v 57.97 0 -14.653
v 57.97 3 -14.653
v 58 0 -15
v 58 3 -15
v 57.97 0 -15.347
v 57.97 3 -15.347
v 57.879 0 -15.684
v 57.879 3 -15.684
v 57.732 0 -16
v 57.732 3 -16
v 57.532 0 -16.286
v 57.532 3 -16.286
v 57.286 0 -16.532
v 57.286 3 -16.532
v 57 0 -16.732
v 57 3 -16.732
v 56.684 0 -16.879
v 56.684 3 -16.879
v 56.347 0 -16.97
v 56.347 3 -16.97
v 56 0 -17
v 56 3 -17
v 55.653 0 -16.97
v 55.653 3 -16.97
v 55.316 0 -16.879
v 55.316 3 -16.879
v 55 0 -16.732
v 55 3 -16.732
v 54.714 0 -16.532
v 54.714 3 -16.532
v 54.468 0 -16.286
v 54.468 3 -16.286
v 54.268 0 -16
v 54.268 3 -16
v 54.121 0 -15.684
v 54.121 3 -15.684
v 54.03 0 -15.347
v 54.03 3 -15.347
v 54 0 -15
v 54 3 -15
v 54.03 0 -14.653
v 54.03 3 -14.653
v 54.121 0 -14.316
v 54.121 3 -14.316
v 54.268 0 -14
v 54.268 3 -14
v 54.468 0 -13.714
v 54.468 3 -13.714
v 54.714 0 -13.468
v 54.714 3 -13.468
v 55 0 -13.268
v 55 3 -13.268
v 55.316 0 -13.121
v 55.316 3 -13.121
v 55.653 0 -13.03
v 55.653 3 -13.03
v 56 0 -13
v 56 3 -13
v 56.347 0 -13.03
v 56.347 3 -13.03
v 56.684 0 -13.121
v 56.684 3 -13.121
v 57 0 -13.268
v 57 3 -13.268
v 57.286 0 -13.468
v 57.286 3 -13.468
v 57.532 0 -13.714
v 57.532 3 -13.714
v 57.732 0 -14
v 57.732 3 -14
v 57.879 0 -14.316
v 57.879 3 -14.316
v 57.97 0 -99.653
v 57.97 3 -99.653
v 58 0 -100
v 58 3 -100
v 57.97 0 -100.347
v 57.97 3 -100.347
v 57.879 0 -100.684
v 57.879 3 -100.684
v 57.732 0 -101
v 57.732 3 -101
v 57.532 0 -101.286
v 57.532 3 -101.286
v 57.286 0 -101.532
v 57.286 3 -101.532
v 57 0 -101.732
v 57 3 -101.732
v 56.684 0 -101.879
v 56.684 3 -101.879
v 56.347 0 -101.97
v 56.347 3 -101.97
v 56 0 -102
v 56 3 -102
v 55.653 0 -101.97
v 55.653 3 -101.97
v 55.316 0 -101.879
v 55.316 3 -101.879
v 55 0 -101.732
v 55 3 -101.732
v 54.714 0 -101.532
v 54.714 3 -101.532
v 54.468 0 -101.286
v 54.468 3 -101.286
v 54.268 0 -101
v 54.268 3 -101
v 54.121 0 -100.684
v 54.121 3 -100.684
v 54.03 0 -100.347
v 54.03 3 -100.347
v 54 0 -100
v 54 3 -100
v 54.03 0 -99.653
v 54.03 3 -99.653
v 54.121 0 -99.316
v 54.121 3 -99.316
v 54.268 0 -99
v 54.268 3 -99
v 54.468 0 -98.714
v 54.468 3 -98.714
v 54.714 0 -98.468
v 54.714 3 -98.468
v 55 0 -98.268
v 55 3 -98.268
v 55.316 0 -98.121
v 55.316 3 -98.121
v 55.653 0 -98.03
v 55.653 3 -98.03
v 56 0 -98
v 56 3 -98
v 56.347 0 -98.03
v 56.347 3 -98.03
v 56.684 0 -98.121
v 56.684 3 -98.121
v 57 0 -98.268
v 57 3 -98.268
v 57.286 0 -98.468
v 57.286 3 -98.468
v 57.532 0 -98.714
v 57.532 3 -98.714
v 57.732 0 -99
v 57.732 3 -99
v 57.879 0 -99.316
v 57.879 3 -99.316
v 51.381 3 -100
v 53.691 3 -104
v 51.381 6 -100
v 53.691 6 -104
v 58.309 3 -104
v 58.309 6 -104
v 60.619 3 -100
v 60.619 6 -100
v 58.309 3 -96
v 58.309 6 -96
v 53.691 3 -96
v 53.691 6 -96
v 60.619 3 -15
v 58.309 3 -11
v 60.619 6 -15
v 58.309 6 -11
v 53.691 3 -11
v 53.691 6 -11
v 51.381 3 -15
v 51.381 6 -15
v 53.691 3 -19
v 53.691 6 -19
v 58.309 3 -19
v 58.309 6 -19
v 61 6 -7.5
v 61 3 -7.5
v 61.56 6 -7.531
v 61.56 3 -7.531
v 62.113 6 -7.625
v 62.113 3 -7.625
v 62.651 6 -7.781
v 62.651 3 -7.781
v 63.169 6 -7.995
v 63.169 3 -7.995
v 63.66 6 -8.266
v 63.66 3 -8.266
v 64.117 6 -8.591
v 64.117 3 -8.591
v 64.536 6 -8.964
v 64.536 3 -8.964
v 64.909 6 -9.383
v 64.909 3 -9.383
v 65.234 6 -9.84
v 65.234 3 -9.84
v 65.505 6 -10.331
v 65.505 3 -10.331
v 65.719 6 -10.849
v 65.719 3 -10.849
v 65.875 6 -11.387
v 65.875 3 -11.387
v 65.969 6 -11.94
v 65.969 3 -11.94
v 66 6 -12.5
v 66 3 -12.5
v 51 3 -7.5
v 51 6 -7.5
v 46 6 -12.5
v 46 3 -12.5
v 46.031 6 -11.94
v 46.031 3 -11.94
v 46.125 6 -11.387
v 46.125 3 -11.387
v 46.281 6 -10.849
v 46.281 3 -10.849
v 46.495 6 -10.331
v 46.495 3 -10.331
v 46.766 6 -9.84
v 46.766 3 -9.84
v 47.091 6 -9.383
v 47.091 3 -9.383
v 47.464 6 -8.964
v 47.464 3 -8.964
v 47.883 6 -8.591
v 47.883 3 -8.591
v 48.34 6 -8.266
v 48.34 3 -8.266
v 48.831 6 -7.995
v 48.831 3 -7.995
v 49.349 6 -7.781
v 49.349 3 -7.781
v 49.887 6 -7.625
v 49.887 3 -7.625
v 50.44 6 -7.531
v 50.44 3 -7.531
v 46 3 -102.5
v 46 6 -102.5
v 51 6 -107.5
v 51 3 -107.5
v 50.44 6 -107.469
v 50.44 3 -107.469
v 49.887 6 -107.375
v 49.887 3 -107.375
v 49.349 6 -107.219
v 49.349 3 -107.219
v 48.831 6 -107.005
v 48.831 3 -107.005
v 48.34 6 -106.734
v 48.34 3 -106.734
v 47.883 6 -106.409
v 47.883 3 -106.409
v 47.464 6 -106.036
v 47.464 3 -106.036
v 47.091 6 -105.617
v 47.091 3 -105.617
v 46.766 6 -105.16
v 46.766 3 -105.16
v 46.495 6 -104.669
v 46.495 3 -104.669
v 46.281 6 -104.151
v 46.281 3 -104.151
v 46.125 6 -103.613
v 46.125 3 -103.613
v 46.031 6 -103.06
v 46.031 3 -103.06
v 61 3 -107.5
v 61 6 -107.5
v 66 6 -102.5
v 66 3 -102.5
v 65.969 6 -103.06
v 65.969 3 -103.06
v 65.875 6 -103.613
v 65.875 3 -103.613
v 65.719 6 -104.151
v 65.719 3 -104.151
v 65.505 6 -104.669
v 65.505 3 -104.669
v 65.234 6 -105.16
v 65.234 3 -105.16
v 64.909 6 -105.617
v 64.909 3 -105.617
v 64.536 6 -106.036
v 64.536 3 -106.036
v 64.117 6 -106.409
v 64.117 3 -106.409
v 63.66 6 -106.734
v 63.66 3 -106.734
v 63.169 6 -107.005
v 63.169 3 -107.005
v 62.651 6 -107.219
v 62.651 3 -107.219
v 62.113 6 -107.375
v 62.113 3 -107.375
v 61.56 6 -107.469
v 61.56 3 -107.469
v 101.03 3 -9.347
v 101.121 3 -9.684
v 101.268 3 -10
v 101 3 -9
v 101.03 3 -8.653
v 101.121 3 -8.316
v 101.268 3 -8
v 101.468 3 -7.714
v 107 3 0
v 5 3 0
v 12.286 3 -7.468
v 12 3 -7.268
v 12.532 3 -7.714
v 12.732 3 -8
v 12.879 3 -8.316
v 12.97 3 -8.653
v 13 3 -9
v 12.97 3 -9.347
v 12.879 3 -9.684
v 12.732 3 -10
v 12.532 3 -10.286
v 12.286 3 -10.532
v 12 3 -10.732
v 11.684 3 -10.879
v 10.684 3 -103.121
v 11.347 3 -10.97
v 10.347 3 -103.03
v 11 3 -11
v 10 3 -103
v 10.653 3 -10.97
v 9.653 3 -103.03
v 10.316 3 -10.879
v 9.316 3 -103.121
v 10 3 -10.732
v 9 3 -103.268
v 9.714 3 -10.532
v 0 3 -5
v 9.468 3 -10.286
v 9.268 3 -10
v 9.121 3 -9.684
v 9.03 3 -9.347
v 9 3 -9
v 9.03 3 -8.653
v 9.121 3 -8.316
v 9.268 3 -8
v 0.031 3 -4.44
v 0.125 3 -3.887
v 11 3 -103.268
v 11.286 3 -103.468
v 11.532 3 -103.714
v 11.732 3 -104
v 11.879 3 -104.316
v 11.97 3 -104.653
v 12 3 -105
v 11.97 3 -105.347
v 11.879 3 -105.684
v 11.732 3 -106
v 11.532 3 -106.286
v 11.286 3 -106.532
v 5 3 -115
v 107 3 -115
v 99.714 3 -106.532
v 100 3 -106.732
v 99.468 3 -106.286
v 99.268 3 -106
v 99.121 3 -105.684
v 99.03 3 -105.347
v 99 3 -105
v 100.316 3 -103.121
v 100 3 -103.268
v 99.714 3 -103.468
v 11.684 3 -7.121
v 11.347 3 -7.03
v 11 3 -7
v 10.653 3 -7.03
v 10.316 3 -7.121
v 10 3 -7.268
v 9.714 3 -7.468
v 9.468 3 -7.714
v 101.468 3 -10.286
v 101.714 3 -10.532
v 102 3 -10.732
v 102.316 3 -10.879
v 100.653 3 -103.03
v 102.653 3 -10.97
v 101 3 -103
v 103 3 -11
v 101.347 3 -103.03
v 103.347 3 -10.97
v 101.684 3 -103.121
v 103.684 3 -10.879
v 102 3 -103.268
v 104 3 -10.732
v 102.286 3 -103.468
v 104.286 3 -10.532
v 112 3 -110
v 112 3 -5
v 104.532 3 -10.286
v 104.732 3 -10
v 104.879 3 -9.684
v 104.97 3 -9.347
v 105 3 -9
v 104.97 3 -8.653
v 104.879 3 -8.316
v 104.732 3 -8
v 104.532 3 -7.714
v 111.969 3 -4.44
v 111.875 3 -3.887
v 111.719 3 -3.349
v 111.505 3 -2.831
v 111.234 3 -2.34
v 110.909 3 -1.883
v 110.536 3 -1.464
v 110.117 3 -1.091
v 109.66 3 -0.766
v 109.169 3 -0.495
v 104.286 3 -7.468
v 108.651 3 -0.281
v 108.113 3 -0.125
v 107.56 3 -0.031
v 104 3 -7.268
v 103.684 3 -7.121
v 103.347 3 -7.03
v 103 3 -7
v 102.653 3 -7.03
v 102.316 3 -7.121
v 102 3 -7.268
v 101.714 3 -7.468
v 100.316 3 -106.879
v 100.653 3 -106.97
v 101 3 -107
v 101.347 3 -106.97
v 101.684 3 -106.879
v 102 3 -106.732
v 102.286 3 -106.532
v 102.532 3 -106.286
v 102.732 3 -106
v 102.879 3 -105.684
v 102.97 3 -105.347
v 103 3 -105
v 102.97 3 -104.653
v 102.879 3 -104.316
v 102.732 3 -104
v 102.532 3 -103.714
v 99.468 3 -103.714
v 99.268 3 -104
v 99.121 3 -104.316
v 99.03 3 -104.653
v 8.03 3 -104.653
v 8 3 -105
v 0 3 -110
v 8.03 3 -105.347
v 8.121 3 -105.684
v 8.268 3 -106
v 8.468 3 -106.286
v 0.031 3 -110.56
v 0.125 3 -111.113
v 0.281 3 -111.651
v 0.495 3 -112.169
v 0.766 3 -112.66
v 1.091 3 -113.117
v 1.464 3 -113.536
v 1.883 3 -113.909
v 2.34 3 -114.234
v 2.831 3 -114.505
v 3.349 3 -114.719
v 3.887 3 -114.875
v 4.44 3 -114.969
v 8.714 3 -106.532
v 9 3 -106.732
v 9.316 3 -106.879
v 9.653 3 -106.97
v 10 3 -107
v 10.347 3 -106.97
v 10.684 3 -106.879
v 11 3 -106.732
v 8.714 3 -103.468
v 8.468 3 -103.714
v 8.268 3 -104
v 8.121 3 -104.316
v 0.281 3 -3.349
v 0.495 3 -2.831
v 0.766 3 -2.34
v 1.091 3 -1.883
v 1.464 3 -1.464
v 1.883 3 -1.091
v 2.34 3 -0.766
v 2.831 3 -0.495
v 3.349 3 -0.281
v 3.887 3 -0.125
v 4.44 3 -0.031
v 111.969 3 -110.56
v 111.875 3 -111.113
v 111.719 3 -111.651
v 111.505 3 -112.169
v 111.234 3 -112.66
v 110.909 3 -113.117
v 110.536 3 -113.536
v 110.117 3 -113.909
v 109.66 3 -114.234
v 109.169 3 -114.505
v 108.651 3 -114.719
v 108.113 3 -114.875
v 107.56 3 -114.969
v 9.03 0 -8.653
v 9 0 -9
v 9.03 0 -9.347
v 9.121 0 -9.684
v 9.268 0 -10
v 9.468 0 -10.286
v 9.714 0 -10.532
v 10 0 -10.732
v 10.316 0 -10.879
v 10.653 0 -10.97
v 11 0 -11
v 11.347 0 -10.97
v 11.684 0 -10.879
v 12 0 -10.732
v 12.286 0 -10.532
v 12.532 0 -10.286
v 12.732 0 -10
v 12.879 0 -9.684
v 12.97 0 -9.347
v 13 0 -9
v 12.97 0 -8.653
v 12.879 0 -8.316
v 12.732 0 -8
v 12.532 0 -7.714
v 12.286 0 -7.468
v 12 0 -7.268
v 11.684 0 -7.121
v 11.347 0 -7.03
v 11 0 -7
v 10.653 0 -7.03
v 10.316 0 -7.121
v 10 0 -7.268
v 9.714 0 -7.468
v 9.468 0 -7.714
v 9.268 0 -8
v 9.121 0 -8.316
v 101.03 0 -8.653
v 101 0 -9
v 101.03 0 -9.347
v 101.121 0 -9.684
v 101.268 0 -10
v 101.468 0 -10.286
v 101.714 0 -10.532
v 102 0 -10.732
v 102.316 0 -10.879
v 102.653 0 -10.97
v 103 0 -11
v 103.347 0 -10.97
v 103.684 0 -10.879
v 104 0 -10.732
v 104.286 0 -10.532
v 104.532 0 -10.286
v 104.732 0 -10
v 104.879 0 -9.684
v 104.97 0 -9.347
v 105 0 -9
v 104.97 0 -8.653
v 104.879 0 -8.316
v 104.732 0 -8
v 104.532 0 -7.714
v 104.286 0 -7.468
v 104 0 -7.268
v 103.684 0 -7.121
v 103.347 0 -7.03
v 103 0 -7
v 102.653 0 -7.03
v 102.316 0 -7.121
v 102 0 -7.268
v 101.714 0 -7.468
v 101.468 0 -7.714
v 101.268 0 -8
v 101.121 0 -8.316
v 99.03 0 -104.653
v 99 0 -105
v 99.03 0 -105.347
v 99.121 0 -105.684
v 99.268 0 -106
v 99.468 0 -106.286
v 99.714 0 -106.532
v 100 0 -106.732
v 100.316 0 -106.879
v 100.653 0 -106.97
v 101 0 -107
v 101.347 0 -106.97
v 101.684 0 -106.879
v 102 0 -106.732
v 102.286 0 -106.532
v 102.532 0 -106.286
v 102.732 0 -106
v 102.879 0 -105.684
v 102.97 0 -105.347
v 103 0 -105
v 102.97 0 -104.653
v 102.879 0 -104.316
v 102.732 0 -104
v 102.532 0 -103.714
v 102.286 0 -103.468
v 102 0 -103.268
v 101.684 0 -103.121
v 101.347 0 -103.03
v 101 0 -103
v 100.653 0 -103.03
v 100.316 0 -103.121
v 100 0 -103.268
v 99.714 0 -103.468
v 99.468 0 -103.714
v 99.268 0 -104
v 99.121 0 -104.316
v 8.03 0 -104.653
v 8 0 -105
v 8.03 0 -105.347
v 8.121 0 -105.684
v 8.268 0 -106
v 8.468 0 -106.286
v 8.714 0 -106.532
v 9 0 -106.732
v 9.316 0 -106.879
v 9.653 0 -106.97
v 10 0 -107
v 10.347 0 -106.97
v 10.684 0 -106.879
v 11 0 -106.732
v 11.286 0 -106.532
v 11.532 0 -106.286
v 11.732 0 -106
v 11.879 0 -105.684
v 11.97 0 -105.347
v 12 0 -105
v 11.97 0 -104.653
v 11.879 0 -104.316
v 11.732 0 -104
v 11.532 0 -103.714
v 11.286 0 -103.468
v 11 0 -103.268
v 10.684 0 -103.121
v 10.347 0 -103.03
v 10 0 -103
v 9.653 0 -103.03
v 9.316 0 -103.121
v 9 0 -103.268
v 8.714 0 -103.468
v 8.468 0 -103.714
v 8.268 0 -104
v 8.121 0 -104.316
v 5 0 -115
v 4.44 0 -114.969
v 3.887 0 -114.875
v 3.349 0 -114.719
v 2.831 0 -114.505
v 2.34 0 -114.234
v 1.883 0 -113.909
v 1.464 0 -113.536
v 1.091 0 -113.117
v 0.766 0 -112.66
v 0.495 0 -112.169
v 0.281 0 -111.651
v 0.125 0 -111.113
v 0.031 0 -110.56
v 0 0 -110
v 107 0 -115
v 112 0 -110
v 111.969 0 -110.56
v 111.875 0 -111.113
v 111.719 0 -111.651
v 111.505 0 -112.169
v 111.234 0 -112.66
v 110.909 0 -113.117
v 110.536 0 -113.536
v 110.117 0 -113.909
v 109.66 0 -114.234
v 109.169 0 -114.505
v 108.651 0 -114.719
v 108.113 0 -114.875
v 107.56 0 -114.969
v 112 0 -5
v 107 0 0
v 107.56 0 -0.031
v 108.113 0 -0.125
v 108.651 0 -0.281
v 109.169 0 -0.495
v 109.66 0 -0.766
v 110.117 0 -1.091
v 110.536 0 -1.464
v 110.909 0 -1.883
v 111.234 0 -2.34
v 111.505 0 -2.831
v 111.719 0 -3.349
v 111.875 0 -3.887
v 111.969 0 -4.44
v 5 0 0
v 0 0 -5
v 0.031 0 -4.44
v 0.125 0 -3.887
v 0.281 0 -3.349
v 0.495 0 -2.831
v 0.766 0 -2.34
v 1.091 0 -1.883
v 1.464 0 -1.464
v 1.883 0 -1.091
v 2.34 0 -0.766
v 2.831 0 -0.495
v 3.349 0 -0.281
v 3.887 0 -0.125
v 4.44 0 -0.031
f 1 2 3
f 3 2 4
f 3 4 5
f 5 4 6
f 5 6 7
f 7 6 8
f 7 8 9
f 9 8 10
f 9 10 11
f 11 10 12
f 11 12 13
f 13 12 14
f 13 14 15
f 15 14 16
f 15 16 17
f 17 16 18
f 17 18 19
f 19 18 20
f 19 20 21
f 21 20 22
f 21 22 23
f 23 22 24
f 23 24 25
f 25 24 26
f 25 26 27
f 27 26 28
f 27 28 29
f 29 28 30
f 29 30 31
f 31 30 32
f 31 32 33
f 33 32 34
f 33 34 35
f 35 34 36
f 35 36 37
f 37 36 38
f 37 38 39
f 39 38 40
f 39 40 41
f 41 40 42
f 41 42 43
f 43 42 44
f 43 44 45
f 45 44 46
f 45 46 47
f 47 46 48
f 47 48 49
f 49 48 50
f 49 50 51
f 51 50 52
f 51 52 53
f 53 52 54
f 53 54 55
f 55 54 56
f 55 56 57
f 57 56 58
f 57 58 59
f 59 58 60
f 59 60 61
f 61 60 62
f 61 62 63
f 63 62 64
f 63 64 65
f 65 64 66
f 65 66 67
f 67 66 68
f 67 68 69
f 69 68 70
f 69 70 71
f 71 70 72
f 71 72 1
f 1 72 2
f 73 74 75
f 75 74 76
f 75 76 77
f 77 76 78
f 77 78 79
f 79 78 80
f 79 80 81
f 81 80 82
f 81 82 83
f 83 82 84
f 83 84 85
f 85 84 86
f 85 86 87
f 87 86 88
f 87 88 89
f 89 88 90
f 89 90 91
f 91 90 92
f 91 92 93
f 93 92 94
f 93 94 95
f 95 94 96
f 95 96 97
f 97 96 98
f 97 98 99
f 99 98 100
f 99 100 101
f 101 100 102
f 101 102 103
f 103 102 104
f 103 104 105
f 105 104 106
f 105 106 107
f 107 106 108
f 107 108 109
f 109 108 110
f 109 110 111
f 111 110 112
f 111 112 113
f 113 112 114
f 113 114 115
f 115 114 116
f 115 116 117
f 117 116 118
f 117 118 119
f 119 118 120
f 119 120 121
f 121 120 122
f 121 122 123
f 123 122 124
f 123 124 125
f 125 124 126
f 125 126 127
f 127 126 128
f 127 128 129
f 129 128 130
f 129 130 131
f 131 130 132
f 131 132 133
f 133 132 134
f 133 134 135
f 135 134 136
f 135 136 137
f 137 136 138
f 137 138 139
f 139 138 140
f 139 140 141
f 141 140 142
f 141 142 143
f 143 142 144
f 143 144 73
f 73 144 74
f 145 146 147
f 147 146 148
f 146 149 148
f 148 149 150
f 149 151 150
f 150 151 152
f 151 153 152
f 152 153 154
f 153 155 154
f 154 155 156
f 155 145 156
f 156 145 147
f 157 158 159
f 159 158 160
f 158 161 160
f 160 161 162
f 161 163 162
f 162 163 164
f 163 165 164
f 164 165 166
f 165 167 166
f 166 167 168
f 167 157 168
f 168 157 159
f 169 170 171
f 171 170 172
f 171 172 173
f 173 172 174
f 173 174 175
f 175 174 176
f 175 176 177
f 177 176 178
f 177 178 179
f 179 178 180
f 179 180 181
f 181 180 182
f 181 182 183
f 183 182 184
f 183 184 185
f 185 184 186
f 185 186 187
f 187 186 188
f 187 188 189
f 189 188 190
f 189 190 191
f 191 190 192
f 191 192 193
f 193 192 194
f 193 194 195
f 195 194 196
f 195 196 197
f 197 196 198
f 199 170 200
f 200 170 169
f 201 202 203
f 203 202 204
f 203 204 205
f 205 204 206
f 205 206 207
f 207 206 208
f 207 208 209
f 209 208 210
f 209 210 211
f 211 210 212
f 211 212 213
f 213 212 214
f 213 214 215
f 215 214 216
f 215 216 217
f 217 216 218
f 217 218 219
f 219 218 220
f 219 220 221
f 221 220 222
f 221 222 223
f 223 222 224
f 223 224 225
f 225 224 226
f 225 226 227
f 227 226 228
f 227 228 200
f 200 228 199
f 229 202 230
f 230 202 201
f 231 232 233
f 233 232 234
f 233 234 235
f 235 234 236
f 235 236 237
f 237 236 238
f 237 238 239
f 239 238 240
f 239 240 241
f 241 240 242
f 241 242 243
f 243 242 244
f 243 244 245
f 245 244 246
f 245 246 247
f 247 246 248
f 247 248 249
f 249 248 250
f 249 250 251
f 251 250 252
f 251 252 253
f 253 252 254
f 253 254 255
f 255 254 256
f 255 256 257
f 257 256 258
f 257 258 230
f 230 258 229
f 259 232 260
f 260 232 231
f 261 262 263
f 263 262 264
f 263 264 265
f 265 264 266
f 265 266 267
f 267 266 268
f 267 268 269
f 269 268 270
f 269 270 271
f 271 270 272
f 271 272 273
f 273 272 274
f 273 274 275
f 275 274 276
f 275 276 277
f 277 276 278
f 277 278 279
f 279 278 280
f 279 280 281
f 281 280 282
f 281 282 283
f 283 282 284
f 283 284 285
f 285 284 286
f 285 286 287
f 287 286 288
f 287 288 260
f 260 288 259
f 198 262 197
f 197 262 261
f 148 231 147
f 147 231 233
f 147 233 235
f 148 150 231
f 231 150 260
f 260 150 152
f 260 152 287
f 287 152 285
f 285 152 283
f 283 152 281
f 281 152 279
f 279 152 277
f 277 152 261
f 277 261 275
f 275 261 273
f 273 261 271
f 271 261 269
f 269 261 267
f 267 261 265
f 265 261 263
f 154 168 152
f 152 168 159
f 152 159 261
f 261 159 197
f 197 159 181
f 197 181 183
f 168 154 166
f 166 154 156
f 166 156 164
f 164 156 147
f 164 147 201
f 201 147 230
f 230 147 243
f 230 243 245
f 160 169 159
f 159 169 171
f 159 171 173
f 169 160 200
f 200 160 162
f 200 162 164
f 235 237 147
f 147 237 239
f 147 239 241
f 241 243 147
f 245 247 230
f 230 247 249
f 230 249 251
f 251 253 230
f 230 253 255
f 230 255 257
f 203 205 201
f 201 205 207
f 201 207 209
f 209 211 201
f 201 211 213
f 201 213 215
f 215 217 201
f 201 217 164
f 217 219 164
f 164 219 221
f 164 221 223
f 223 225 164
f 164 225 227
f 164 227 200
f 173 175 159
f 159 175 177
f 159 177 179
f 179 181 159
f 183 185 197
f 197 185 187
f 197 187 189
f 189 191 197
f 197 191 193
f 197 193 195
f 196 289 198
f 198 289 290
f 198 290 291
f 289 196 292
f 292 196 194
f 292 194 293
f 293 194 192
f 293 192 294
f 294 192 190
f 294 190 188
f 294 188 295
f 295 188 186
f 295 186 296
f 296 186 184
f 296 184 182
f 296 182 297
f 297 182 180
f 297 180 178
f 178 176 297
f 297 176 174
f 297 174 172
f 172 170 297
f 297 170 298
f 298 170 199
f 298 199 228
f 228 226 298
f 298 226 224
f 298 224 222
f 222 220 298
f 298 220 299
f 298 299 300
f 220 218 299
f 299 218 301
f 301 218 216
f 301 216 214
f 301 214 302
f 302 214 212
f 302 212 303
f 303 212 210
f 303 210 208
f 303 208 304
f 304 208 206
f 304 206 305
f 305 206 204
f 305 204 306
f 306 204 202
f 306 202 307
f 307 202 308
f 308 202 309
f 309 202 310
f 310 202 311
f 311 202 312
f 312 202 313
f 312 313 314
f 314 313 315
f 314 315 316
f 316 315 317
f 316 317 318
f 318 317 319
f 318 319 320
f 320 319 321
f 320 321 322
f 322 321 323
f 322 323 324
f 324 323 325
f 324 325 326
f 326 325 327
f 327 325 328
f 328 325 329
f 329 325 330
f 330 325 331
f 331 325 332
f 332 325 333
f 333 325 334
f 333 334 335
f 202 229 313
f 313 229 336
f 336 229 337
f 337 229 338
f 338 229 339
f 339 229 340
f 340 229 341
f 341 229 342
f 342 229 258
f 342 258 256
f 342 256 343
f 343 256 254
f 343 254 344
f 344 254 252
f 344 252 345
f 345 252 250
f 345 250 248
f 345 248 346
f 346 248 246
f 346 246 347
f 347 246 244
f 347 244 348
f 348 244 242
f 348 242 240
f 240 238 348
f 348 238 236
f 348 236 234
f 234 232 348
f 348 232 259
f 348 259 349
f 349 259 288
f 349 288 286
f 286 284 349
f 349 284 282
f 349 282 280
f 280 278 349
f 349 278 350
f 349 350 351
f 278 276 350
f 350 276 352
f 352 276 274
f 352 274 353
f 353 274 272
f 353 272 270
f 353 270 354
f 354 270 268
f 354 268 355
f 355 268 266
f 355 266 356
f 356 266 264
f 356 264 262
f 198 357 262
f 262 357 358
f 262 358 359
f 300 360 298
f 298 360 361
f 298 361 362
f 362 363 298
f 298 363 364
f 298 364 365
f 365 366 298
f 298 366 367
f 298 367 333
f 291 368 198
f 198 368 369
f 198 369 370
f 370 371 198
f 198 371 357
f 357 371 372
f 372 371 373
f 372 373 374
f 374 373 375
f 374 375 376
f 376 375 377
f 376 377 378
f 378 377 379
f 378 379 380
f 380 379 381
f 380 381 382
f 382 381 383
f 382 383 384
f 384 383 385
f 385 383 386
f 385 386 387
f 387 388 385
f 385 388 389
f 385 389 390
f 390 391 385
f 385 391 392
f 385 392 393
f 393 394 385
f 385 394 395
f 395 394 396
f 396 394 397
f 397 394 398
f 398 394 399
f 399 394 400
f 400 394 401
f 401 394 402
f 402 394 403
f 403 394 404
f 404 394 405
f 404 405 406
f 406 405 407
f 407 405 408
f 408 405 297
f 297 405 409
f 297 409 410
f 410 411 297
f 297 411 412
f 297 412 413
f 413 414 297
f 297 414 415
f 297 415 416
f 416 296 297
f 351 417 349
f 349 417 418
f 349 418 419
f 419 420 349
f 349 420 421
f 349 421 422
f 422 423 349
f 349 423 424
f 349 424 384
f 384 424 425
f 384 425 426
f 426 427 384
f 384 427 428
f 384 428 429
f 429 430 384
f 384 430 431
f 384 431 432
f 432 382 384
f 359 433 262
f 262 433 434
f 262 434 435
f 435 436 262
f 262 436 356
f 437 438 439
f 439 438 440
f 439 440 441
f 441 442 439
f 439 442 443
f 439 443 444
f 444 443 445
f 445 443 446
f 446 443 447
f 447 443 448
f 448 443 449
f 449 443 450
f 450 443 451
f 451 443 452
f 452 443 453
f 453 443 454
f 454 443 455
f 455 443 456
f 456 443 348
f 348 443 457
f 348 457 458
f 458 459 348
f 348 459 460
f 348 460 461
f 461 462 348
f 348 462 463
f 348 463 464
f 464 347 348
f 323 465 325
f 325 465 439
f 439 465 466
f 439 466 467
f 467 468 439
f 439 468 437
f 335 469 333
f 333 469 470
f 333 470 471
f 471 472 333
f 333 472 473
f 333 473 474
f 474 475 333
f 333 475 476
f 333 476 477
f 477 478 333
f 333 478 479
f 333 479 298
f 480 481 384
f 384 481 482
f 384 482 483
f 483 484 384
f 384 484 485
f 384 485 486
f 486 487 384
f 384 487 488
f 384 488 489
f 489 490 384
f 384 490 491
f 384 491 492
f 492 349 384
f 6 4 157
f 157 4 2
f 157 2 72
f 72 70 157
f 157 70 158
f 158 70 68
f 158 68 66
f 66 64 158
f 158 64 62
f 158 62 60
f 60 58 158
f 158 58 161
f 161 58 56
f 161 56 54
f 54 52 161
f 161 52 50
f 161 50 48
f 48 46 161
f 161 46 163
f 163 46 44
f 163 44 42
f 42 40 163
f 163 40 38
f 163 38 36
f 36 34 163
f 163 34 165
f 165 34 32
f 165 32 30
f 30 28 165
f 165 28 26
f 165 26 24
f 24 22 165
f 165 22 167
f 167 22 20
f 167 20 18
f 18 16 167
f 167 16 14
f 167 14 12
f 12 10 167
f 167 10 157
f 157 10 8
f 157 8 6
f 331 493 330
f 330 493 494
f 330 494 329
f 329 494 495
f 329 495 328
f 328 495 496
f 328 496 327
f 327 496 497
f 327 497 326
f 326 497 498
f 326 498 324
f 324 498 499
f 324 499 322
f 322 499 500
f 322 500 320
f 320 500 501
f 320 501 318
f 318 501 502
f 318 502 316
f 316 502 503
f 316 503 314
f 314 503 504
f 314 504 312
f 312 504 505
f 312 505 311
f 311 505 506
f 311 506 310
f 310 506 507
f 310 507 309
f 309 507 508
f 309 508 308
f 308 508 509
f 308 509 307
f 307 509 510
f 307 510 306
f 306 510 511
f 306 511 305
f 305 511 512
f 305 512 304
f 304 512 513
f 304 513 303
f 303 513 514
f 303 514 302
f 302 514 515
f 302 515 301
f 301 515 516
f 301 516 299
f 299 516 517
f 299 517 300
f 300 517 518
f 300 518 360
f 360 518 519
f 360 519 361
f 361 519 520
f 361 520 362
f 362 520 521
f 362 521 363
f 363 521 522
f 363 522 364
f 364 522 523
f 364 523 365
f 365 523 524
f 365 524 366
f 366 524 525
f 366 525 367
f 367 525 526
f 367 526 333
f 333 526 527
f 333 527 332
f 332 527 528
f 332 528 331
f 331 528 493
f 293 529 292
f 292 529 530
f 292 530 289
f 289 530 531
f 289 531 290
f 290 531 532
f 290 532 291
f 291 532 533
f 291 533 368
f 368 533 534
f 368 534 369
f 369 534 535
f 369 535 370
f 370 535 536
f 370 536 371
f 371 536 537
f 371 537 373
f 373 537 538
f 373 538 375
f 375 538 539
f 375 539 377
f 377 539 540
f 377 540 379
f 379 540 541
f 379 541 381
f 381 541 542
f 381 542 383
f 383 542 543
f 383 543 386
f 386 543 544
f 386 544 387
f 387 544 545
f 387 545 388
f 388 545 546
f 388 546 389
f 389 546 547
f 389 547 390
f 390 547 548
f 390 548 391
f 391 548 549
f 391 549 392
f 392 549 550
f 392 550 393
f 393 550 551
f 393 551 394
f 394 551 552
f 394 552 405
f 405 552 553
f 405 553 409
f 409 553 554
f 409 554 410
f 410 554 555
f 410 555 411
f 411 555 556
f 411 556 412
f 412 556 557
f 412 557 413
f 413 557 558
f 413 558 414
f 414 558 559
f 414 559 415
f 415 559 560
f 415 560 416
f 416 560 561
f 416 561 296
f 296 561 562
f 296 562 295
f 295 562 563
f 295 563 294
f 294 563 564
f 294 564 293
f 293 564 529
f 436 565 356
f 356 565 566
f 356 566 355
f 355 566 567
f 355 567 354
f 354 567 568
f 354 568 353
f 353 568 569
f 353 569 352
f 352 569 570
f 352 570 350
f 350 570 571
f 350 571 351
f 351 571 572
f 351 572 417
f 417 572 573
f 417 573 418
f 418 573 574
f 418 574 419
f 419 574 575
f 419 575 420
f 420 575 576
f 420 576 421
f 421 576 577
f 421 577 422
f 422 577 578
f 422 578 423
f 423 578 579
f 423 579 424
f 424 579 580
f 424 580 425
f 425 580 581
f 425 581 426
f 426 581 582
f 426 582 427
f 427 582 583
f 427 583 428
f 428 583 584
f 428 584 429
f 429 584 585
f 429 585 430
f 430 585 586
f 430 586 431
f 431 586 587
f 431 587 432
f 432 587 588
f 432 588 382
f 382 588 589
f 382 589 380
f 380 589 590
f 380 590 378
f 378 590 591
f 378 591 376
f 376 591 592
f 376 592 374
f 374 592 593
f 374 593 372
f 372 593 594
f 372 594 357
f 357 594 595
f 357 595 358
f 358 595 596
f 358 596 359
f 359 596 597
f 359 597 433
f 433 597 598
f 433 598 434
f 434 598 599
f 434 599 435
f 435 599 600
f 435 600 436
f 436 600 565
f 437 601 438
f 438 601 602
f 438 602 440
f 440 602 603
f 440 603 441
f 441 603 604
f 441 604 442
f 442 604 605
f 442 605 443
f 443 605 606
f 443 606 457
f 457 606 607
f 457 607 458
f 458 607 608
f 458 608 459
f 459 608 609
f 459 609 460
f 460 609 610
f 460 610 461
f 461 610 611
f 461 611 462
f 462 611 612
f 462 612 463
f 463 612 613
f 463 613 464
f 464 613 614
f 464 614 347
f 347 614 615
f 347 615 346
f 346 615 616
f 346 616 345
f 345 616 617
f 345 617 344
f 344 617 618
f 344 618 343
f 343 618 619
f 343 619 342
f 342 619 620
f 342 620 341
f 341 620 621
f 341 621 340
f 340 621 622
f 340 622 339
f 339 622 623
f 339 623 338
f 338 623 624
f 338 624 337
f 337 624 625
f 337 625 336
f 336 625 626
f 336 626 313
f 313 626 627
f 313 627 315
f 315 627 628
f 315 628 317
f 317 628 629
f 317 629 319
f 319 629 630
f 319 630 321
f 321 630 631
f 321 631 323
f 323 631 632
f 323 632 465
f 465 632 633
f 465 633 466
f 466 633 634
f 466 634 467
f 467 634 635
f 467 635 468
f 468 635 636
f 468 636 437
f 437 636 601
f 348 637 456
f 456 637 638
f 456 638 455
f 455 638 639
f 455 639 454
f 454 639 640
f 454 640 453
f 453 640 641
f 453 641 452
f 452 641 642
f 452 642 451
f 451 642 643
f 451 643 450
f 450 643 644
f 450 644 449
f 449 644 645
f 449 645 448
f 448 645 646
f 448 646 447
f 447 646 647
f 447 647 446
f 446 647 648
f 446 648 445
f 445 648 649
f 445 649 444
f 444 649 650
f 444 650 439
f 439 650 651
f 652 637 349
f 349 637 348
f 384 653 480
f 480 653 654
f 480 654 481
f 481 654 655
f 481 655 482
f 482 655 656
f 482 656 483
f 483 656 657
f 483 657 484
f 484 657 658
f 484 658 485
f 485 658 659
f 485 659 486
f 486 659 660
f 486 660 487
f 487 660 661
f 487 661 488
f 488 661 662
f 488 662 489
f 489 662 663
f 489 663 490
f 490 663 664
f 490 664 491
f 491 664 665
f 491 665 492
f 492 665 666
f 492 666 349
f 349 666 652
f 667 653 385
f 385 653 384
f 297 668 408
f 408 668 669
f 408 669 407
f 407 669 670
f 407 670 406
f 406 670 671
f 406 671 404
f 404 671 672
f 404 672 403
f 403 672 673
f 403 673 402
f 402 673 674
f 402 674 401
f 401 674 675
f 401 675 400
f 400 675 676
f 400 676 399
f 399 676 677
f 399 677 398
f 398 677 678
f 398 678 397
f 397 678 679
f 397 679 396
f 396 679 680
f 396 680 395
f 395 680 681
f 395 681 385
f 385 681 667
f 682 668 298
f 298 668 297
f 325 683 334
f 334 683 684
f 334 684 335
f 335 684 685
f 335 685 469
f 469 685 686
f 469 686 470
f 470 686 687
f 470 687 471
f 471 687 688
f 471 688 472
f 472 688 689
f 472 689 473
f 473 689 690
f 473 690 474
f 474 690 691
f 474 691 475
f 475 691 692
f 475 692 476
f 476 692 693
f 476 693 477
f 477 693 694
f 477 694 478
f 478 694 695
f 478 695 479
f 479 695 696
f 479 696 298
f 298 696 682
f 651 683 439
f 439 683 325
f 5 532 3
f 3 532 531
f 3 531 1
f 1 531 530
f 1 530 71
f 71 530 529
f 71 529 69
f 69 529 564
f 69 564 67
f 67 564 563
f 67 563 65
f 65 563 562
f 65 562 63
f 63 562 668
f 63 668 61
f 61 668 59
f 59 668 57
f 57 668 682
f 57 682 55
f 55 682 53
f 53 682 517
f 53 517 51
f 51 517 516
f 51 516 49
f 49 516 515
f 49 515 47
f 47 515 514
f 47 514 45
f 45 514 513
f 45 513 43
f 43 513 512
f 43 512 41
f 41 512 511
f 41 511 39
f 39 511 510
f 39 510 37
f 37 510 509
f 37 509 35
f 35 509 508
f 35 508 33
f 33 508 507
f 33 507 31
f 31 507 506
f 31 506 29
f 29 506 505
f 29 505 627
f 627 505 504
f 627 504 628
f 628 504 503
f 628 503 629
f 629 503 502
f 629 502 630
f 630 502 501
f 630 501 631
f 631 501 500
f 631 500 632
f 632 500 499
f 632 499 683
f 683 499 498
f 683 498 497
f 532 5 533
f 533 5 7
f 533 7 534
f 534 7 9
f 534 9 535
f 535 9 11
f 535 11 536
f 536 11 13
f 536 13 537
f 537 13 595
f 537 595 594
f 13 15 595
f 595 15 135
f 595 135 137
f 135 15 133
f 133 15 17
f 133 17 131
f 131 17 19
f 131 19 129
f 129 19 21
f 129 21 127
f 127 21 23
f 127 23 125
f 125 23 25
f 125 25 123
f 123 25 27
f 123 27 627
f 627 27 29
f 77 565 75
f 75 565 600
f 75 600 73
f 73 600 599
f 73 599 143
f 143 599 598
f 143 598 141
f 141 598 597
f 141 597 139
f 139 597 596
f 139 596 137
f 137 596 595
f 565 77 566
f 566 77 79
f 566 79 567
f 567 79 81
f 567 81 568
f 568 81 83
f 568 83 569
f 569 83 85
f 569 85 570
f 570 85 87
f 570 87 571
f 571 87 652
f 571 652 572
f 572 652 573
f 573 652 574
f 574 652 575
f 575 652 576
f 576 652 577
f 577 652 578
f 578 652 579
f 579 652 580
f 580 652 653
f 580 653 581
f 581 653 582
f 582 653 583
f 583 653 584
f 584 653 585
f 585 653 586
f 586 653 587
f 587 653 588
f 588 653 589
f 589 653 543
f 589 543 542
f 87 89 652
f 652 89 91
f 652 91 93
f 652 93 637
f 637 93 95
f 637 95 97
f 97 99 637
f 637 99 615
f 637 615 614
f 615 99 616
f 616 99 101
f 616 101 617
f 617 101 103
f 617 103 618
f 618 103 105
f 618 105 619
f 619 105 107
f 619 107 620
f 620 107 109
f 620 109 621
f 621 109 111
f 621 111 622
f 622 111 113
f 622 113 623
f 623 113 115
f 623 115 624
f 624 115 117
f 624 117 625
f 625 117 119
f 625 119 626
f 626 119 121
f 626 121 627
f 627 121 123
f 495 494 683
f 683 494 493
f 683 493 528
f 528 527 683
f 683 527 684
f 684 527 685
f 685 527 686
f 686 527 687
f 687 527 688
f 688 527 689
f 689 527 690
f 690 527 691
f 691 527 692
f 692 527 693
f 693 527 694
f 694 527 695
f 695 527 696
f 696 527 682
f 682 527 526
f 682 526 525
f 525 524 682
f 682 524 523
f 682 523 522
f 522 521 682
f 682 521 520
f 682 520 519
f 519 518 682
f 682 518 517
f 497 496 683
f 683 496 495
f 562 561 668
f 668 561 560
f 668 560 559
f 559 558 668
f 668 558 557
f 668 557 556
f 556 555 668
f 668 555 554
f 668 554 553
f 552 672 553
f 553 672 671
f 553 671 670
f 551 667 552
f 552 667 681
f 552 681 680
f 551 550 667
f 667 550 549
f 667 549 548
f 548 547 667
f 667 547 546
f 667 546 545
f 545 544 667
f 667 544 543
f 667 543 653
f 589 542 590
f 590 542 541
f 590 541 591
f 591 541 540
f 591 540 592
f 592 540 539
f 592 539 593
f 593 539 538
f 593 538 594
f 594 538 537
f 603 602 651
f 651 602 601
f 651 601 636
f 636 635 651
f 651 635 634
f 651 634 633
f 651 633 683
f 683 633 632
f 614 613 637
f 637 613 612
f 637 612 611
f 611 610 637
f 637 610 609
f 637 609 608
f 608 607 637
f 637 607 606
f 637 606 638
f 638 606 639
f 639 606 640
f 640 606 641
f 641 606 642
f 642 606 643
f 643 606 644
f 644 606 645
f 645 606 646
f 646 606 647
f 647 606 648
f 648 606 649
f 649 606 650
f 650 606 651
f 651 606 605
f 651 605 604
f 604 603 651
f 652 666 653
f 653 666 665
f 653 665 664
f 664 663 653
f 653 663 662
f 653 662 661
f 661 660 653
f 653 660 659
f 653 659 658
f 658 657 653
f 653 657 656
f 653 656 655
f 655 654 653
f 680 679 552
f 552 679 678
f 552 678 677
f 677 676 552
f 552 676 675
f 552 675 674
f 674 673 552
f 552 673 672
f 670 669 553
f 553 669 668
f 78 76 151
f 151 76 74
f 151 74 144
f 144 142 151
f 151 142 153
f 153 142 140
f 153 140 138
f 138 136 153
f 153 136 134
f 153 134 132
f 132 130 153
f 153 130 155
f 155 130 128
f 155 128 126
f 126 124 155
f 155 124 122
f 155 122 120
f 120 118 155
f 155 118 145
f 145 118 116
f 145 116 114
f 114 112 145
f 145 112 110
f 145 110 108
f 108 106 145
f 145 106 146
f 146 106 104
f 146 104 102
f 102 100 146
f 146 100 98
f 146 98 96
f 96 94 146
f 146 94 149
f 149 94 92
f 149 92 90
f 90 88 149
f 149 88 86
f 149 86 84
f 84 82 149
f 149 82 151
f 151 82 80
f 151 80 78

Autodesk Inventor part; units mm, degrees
ref_plane "YZ Plane" through (0, 0, 0) normal (1, 0, 0) x (0, 1, 0)
ref_plane "XZ Plane" through (0, 0, 0) normal (0, 1, 0) x (-1, 0, 0)
ref_plane "XY Plane" through (0, 0, 0) normal (0, 0, 1) x (1, 0, 0)
sketch "Boceto1" plane through (0, 0, 0) normal (0, 1, 0) x (-1, 0, 0)
  line L0 (0, -5) -> (0, -110)
  line L1 (-5, -115) -> (-107, -115)
  line L2 (-112, -110) -> (-112, -5)
  line L3 (-107, 0) -> (-5, 0)
  arc A0 (-5, -115) -> (0, -110) centre (-5, -110) ccw
  arc A1 (-107, 0) -> (-112, -5) centre (-107, -5) ccw
  arc A2 (-112, -110) -> (-107, -115) centre (-107, -110) ccw
  arc A3 (0, -5) -> (-5, 0) centre (-5, -5) ccw
  circle A4 centre (-10, -105) radius 2
  circle A5 centre (-101, -105) radius 2
  circle A6 centre (-103, -9) radius 2
  circle A7 centre (-11, -9) radius 2
  point P0 (0, 0)
  dimension "d2" = 5
  dimension "d3" = 5
  dimension "d21" = 4
  dimension "d24" = 4
  dimension "d27" = 4
  dimension "d30" = 4
extrude "Extrusión1" add sketch "Boceto1" along normal blind 3
sketch "Boceto2" plane through (0, 3, 0) normal (0, 1, 0) x (1, 0, 0)
  line L0 (5, 0) -> (107, 0) projected
  line L1 (107, 115) -> (5, 115) projected
  line L2 (58.3094, 19) -> (60.6188, 15)
  line L3 (60.6188, 15) -> (58.3094, 11)
  line L4 (58.3094, 11) -> (53.6906, 11)
  line L5 (53.6906, 11) -> (51.3812, 15)
  line L6 (51.3812, 15) -> (53.6906, 19)
  line L7 (53.6906, 19) -> (58.3094, 19)
  line L8 (53.6906, 96) -> (51.3812, 100)
  line L9 (51.3812, 100) -> (53.6906, 104)
  line L10 (53.6906, 104) -> (58.3094, 104)
  line L11 (58.3094, 104) -> (60.6188, 100)
  line L12 (60.6188, 100) -> (58.3094, 96)
  line L13 (58.3094, 96) -> (53.6906, 96)
  line L14 (66, 57.5) -> (66, 12.5)
  line L15 (61, 7.5) -> (51, 7.5)
  line L16 (46, 12.5) -> (46, 102.5)
  line L17 (51, 107.5) -> (61, 107.5)
  line L18 (66, 102.5) -> (66, 57.5)
  arc A0 (46, 12.5) -> (51, 7.5) centre (51, 12.5) ccw
  arc A1 (61, 7.5) -> (66, 12.5) centre (61, 12.5) ccw
  arc A2 (66, 102.5) -> (61, 107.5) centre (61, 102.5) ccw
  arc A3 (51, 107.5) -> (46, 102.5) centre (51, 102.5) ccw
  point P0 (0, 0)
  point P1 (56, 15)
  point P2 (56, 100)
  point P3 (66, 107.5)
  dimension "d42" = 5
extrude "Extrusión2" add sketch "Boceto2" along normal blind 3
sketch "Boceto3" plane through (0, 3, 0) normal (0, 1, 0) x (1, 0, 0)
  line L0 (53.6906, 19) -> (58.3094, 19) projected
  line L1 (58.3094, 104) -> (53.6906, 104) projected
  circle A0 centre (56, 15) radius 2
  circle A1 centre (56, 100) radius 2
  point P0 (0, 0)
  dimension "d45" = 4
  dimension "d46" = 4
extrude "Extrusión3" cut sketch "Boceto3" against normal blind 3
properties part number "nuc_case_top"
